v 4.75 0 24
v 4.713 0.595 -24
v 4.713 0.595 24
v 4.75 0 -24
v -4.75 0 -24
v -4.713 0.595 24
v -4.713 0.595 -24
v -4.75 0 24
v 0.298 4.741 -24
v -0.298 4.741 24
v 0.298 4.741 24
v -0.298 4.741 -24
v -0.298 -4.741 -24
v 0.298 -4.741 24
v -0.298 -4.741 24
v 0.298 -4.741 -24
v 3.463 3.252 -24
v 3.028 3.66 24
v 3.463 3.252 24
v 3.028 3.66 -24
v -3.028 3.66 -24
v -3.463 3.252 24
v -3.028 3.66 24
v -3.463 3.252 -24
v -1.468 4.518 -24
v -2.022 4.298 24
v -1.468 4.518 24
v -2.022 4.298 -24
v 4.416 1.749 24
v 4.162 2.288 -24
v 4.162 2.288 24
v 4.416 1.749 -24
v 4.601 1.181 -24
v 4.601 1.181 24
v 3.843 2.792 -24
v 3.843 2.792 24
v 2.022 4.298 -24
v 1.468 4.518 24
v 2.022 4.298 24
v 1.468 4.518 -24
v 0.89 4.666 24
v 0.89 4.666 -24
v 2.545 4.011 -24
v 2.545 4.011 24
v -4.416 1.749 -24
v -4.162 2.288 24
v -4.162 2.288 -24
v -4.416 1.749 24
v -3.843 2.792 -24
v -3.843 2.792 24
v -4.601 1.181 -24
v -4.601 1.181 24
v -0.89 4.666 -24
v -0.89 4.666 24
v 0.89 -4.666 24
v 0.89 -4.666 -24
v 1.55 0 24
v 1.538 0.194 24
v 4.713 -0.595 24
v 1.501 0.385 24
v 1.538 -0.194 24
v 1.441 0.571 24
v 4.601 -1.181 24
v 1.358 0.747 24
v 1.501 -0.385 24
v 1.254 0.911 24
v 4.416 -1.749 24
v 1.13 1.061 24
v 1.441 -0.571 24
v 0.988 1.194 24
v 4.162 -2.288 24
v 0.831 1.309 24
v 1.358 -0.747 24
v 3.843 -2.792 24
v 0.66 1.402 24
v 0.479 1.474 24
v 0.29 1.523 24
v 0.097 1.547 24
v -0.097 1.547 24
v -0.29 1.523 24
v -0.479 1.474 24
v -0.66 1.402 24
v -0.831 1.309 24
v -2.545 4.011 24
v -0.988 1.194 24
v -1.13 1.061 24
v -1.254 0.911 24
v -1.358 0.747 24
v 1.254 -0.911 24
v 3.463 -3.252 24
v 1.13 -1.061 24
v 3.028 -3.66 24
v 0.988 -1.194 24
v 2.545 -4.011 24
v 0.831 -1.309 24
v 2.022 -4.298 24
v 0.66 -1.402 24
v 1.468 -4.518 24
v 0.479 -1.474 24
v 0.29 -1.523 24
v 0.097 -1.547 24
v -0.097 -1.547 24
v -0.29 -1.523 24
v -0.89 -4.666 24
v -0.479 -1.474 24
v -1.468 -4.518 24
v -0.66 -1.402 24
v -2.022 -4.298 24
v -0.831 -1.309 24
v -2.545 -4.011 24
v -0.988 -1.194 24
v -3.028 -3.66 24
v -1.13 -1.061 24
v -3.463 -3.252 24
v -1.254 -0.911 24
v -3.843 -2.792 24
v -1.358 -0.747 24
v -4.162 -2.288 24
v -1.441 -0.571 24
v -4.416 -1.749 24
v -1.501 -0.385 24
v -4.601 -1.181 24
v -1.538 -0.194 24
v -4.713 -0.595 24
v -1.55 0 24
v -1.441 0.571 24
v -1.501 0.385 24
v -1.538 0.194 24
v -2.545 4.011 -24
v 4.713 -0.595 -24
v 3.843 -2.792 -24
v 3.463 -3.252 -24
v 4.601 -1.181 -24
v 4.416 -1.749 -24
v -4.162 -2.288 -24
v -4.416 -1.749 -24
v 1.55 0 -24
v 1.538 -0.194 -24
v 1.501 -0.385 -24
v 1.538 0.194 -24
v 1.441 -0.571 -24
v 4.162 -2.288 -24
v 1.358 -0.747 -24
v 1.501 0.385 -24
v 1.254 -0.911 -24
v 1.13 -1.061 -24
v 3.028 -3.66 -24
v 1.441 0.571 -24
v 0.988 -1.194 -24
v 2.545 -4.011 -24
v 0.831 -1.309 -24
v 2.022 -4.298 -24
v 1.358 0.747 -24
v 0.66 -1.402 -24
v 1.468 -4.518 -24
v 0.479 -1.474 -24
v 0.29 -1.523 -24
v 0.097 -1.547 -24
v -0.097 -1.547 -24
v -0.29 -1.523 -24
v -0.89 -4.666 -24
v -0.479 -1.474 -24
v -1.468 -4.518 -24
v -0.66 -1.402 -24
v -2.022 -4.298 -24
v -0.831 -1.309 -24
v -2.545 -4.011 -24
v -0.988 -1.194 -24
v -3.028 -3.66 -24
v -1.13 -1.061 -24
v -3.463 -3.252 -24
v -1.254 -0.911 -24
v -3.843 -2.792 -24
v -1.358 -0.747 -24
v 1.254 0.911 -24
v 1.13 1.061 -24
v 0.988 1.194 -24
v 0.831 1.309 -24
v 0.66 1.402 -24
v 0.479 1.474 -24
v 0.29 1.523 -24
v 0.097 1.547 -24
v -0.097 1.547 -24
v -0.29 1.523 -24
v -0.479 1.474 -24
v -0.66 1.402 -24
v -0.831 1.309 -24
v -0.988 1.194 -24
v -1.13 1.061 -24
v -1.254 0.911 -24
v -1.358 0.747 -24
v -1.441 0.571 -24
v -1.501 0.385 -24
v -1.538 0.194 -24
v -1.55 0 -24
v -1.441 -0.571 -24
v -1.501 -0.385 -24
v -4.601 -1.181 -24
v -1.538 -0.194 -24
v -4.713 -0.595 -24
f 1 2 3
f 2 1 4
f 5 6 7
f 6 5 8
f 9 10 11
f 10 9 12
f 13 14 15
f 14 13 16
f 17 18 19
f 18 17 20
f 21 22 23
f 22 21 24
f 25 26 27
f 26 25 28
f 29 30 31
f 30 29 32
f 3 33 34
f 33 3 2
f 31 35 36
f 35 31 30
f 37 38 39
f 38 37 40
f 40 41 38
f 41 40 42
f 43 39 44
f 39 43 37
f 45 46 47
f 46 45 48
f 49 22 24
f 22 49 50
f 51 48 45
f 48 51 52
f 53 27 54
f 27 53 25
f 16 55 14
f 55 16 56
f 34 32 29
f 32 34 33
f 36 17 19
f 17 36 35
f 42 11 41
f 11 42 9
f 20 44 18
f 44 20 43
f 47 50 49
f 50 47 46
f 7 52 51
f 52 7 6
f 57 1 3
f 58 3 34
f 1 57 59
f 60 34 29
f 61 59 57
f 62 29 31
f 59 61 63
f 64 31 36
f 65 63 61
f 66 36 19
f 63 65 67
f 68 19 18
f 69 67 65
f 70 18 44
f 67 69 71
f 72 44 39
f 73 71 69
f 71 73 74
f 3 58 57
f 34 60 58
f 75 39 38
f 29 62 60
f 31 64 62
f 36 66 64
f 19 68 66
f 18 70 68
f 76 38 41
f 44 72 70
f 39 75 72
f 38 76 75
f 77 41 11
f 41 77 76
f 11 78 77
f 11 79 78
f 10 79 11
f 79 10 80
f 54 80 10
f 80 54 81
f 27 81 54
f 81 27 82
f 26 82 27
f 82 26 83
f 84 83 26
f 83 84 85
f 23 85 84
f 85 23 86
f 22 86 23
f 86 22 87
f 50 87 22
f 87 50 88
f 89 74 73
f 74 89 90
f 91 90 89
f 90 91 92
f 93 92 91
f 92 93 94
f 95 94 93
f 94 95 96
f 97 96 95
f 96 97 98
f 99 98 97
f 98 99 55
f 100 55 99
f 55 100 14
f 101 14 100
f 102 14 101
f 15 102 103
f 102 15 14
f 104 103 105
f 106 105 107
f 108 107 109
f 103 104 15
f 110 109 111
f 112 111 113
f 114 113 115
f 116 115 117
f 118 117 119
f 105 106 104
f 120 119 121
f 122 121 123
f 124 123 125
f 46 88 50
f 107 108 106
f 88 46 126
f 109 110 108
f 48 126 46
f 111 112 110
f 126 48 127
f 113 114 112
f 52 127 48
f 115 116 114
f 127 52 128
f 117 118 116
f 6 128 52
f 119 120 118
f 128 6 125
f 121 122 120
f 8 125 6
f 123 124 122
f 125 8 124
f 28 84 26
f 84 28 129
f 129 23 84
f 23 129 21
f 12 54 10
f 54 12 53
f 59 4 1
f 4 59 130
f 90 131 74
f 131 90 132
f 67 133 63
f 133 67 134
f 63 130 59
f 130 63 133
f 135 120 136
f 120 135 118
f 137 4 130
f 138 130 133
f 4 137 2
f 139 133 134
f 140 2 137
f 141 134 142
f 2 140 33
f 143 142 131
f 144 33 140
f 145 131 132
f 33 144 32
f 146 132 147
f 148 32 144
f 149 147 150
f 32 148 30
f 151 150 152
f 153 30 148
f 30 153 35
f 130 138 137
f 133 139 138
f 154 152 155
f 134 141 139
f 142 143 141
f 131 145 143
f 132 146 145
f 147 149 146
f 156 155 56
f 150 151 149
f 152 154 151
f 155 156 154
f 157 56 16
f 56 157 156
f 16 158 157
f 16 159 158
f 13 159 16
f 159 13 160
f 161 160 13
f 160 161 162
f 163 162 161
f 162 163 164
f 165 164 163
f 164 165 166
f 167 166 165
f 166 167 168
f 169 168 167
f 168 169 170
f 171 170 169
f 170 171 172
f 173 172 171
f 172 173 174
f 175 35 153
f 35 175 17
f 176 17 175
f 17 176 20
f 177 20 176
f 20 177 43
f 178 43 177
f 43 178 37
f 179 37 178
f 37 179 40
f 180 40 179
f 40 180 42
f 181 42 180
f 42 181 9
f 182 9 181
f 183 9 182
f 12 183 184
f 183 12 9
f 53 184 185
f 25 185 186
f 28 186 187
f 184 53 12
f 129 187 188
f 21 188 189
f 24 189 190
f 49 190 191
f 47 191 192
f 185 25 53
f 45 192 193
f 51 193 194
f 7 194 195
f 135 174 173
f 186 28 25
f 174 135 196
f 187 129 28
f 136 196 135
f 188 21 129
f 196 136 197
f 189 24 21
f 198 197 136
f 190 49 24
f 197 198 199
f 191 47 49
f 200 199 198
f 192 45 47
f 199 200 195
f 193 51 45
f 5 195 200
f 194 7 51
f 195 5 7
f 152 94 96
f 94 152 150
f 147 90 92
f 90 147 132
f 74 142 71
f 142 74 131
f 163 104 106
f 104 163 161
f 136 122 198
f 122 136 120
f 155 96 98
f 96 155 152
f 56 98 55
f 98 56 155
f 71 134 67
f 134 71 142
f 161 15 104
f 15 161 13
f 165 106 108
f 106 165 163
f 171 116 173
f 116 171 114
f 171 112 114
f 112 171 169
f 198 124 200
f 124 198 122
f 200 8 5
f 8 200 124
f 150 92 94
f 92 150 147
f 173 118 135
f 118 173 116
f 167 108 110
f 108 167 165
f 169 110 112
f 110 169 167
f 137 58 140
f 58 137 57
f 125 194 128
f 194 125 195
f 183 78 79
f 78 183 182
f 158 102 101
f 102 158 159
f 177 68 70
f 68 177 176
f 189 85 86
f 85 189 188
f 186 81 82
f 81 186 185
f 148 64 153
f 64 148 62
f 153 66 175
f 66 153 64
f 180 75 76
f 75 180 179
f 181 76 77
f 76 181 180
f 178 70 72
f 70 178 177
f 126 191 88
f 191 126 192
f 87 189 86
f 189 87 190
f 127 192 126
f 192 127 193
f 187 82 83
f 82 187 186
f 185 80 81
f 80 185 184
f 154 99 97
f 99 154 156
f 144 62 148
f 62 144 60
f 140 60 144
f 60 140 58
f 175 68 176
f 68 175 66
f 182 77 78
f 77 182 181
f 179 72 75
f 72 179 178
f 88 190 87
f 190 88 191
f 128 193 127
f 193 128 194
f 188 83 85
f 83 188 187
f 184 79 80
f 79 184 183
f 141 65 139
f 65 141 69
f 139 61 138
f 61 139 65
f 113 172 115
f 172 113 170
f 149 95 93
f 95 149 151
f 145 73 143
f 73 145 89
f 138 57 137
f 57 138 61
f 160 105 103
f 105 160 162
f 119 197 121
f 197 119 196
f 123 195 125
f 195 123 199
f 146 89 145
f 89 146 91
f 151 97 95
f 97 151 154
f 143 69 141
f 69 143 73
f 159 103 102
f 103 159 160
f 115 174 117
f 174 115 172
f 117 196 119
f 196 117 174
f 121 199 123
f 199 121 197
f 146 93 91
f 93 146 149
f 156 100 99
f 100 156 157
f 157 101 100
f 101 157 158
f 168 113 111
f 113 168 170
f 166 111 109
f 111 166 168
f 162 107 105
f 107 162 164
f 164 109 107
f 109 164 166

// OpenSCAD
$fn = 50;


difference() {
	union() {
		translate(v = [0, 0, -24.0000000000]) {
			cylinder(h = 48, r = 4.7500000000);
		}
	}
	union() {
		translate(v = [0, 0, -100.0000000000]) {
			cylinder(h = 200, r = 1.5500000000);
		}
	}
}
